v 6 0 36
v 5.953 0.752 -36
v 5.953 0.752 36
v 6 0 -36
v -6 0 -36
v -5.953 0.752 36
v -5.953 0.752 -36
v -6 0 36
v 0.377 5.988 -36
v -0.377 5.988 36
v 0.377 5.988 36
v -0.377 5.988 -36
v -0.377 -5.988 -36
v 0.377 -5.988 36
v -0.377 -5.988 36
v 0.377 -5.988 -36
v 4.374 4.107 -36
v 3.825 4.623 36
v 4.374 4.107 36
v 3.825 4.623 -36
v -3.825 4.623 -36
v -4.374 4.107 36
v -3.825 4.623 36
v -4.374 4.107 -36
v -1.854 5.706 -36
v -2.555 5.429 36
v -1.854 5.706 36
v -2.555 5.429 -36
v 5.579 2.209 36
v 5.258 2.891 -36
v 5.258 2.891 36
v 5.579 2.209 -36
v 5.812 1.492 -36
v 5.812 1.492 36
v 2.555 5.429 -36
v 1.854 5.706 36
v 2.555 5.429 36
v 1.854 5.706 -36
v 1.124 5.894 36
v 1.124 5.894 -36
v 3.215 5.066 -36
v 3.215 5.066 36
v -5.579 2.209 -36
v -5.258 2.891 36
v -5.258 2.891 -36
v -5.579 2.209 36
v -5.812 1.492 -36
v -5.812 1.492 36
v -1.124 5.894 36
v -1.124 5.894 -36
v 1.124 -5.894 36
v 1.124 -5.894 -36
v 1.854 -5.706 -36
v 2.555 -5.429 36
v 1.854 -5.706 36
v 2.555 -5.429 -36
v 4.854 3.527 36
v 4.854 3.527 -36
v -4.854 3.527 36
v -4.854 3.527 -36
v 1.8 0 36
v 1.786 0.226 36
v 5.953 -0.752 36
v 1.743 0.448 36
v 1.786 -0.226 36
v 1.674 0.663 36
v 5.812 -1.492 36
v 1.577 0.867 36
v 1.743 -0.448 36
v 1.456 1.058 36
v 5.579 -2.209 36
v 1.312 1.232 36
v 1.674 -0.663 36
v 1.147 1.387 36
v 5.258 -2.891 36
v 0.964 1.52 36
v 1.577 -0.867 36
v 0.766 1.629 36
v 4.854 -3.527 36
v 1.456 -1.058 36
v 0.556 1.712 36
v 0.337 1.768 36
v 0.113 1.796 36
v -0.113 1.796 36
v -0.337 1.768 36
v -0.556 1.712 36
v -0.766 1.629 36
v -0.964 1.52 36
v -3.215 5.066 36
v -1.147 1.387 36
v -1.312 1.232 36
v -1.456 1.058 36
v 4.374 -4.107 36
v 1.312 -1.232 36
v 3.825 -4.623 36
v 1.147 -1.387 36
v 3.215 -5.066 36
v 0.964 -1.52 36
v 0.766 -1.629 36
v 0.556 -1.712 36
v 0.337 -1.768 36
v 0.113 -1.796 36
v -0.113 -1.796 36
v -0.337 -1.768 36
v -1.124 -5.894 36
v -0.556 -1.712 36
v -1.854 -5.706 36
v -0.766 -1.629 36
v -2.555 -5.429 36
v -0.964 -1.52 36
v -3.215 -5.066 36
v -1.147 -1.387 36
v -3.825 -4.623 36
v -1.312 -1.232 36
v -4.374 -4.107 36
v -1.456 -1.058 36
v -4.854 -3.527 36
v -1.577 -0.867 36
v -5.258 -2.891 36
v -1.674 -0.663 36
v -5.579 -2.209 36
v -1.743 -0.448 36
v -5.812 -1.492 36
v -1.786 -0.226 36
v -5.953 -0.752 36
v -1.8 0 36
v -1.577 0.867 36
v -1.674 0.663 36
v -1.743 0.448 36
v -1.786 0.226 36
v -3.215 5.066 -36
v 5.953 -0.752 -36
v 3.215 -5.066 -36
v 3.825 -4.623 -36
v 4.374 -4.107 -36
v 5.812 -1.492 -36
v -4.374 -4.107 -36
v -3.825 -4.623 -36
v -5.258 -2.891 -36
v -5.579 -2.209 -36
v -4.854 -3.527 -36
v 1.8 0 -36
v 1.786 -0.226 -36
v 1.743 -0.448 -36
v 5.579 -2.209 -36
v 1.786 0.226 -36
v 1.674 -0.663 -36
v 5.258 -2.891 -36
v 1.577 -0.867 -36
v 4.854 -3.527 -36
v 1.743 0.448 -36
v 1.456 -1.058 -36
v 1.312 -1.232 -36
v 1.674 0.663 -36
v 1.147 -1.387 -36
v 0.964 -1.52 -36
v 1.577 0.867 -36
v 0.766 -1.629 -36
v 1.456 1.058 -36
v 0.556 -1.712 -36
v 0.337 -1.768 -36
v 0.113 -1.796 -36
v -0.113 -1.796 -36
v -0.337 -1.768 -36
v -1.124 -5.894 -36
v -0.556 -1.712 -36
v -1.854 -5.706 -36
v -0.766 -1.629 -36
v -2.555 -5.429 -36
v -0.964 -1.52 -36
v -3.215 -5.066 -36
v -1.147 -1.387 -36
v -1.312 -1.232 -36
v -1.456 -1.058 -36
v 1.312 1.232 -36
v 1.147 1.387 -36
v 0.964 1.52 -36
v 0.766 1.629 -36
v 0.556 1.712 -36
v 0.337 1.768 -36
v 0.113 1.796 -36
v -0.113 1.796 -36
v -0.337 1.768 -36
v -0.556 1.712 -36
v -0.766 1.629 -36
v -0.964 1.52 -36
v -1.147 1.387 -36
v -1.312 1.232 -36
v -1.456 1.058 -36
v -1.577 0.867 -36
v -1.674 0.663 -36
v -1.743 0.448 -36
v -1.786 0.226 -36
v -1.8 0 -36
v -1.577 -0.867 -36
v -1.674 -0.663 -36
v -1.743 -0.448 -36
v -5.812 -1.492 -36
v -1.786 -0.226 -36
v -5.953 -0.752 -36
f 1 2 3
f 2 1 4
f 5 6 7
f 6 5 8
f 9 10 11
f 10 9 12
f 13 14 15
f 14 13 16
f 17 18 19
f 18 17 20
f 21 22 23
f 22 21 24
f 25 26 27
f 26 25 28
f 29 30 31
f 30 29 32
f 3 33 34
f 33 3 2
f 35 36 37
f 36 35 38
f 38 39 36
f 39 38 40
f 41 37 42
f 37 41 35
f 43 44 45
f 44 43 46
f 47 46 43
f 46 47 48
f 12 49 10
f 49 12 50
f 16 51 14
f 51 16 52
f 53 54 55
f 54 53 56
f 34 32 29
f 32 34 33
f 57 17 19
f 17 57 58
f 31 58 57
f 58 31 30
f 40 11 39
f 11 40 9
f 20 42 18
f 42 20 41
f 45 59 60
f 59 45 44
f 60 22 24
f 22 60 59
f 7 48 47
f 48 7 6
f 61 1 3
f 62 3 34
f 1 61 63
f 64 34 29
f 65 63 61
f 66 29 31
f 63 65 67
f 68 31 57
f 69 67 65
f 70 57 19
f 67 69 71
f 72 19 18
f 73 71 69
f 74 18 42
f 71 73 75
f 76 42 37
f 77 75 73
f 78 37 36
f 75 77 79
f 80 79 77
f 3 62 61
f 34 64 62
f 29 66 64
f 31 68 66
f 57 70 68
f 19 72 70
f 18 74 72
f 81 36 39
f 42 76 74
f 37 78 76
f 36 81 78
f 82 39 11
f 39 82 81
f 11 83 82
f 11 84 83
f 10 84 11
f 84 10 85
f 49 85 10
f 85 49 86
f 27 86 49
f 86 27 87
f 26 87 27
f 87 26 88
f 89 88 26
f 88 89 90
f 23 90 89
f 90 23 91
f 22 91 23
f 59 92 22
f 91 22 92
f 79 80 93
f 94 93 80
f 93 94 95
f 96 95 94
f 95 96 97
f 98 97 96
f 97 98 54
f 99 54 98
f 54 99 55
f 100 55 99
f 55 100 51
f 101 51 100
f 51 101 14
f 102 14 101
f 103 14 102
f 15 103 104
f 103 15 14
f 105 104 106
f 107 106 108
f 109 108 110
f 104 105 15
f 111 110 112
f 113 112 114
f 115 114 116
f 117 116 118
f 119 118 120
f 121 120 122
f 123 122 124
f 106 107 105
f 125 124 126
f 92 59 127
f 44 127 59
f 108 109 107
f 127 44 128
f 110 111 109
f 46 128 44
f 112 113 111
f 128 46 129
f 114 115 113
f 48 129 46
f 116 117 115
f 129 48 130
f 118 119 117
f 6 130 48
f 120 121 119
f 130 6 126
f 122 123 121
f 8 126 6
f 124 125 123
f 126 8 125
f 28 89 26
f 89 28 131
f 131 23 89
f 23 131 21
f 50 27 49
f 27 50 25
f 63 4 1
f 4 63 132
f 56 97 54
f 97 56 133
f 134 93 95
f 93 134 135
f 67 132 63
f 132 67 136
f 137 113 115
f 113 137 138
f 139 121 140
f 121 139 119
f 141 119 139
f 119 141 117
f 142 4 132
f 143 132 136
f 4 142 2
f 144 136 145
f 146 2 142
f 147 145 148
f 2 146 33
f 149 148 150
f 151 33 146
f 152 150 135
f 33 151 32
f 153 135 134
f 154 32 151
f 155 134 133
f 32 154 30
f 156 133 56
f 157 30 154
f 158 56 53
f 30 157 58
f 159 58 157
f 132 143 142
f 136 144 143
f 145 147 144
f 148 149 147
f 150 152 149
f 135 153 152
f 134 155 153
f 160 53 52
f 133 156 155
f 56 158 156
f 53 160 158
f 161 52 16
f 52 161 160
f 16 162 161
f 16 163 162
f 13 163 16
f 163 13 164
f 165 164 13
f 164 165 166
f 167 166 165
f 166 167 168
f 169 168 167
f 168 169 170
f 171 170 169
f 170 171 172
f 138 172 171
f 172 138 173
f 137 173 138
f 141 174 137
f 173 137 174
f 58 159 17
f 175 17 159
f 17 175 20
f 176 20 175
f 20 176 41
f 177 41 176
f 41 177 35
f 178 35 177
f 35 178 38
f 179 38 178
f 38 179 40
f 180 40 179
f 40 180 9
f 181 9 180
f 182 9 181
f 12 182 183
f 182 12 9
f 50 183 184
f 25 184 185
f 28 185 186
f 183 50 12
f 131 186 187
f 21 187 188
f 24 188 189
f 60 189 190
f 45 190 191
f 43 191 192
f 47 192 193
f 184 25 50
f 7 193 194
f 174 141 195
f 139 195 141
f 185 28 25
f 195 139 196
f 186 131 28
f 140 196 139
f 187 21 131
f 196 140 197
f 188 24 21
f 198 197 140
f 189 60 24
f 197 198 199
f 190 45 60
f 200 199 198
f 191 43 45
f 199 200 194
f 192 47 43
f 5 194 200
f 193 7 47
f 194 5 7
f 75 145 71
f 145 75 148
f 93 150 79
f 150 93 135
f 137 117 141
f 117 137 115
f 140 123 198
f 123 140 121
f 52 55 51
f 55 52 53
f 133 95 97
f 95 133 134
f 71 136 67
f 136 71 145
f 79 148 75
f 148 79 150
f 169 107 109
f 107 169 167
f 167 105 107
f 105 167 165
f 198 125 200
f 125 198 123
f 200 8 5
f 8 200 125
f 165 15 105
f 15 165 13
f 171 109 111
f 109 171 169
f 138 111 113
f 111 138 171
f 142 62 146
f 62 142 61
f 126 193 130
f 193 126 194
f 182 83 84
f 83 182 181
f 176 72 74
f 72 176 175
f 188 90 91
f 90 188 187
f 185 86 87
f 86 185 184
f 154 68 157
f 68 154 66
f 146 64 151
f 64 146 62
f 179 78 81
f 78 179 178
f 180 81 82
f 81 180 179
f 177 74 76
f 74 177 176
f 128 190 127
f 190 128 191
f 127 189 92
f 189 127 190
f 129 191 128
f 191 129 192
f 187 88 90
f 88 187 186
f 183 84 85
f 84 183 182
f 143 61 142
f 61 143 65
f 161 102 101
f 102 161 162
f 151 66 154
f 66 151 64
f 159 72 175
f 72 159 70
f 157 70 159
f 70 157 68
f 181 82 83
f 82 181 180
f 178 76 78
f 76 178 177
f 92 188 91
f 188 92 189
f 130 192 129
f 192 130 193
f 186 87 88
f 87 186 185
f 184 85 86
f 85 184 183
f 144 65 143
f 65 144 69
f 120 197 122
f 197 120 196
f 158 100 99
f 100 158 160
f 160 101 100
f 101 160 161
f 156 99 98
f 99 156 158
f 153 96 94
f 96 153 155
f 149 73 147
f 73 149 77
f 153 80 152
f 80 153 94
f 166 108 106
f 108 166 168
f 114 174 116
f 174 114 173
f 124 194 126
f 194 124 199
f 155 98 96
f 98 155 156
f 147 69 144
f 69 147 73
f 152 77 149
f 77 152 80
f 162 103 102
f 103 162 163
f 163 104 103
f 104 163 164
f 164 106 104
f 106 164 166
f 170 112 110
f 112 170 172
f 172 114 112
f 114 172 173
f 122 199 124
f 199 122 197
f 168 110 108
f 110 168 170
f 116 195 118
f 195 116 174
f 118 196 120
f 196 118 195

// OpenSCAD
$fn = 50;


difference() {
	union() {
		translate(v = [0, 0, -36.0000000000]) {
			cylinder(h = 72, r = 6.0000000000);
		}
	}
	union() {
		translate(v = [0, 0, -100.0000000000]) {
			cylinder(h = 200, r = 1.8000000000);
		}
	}
}
